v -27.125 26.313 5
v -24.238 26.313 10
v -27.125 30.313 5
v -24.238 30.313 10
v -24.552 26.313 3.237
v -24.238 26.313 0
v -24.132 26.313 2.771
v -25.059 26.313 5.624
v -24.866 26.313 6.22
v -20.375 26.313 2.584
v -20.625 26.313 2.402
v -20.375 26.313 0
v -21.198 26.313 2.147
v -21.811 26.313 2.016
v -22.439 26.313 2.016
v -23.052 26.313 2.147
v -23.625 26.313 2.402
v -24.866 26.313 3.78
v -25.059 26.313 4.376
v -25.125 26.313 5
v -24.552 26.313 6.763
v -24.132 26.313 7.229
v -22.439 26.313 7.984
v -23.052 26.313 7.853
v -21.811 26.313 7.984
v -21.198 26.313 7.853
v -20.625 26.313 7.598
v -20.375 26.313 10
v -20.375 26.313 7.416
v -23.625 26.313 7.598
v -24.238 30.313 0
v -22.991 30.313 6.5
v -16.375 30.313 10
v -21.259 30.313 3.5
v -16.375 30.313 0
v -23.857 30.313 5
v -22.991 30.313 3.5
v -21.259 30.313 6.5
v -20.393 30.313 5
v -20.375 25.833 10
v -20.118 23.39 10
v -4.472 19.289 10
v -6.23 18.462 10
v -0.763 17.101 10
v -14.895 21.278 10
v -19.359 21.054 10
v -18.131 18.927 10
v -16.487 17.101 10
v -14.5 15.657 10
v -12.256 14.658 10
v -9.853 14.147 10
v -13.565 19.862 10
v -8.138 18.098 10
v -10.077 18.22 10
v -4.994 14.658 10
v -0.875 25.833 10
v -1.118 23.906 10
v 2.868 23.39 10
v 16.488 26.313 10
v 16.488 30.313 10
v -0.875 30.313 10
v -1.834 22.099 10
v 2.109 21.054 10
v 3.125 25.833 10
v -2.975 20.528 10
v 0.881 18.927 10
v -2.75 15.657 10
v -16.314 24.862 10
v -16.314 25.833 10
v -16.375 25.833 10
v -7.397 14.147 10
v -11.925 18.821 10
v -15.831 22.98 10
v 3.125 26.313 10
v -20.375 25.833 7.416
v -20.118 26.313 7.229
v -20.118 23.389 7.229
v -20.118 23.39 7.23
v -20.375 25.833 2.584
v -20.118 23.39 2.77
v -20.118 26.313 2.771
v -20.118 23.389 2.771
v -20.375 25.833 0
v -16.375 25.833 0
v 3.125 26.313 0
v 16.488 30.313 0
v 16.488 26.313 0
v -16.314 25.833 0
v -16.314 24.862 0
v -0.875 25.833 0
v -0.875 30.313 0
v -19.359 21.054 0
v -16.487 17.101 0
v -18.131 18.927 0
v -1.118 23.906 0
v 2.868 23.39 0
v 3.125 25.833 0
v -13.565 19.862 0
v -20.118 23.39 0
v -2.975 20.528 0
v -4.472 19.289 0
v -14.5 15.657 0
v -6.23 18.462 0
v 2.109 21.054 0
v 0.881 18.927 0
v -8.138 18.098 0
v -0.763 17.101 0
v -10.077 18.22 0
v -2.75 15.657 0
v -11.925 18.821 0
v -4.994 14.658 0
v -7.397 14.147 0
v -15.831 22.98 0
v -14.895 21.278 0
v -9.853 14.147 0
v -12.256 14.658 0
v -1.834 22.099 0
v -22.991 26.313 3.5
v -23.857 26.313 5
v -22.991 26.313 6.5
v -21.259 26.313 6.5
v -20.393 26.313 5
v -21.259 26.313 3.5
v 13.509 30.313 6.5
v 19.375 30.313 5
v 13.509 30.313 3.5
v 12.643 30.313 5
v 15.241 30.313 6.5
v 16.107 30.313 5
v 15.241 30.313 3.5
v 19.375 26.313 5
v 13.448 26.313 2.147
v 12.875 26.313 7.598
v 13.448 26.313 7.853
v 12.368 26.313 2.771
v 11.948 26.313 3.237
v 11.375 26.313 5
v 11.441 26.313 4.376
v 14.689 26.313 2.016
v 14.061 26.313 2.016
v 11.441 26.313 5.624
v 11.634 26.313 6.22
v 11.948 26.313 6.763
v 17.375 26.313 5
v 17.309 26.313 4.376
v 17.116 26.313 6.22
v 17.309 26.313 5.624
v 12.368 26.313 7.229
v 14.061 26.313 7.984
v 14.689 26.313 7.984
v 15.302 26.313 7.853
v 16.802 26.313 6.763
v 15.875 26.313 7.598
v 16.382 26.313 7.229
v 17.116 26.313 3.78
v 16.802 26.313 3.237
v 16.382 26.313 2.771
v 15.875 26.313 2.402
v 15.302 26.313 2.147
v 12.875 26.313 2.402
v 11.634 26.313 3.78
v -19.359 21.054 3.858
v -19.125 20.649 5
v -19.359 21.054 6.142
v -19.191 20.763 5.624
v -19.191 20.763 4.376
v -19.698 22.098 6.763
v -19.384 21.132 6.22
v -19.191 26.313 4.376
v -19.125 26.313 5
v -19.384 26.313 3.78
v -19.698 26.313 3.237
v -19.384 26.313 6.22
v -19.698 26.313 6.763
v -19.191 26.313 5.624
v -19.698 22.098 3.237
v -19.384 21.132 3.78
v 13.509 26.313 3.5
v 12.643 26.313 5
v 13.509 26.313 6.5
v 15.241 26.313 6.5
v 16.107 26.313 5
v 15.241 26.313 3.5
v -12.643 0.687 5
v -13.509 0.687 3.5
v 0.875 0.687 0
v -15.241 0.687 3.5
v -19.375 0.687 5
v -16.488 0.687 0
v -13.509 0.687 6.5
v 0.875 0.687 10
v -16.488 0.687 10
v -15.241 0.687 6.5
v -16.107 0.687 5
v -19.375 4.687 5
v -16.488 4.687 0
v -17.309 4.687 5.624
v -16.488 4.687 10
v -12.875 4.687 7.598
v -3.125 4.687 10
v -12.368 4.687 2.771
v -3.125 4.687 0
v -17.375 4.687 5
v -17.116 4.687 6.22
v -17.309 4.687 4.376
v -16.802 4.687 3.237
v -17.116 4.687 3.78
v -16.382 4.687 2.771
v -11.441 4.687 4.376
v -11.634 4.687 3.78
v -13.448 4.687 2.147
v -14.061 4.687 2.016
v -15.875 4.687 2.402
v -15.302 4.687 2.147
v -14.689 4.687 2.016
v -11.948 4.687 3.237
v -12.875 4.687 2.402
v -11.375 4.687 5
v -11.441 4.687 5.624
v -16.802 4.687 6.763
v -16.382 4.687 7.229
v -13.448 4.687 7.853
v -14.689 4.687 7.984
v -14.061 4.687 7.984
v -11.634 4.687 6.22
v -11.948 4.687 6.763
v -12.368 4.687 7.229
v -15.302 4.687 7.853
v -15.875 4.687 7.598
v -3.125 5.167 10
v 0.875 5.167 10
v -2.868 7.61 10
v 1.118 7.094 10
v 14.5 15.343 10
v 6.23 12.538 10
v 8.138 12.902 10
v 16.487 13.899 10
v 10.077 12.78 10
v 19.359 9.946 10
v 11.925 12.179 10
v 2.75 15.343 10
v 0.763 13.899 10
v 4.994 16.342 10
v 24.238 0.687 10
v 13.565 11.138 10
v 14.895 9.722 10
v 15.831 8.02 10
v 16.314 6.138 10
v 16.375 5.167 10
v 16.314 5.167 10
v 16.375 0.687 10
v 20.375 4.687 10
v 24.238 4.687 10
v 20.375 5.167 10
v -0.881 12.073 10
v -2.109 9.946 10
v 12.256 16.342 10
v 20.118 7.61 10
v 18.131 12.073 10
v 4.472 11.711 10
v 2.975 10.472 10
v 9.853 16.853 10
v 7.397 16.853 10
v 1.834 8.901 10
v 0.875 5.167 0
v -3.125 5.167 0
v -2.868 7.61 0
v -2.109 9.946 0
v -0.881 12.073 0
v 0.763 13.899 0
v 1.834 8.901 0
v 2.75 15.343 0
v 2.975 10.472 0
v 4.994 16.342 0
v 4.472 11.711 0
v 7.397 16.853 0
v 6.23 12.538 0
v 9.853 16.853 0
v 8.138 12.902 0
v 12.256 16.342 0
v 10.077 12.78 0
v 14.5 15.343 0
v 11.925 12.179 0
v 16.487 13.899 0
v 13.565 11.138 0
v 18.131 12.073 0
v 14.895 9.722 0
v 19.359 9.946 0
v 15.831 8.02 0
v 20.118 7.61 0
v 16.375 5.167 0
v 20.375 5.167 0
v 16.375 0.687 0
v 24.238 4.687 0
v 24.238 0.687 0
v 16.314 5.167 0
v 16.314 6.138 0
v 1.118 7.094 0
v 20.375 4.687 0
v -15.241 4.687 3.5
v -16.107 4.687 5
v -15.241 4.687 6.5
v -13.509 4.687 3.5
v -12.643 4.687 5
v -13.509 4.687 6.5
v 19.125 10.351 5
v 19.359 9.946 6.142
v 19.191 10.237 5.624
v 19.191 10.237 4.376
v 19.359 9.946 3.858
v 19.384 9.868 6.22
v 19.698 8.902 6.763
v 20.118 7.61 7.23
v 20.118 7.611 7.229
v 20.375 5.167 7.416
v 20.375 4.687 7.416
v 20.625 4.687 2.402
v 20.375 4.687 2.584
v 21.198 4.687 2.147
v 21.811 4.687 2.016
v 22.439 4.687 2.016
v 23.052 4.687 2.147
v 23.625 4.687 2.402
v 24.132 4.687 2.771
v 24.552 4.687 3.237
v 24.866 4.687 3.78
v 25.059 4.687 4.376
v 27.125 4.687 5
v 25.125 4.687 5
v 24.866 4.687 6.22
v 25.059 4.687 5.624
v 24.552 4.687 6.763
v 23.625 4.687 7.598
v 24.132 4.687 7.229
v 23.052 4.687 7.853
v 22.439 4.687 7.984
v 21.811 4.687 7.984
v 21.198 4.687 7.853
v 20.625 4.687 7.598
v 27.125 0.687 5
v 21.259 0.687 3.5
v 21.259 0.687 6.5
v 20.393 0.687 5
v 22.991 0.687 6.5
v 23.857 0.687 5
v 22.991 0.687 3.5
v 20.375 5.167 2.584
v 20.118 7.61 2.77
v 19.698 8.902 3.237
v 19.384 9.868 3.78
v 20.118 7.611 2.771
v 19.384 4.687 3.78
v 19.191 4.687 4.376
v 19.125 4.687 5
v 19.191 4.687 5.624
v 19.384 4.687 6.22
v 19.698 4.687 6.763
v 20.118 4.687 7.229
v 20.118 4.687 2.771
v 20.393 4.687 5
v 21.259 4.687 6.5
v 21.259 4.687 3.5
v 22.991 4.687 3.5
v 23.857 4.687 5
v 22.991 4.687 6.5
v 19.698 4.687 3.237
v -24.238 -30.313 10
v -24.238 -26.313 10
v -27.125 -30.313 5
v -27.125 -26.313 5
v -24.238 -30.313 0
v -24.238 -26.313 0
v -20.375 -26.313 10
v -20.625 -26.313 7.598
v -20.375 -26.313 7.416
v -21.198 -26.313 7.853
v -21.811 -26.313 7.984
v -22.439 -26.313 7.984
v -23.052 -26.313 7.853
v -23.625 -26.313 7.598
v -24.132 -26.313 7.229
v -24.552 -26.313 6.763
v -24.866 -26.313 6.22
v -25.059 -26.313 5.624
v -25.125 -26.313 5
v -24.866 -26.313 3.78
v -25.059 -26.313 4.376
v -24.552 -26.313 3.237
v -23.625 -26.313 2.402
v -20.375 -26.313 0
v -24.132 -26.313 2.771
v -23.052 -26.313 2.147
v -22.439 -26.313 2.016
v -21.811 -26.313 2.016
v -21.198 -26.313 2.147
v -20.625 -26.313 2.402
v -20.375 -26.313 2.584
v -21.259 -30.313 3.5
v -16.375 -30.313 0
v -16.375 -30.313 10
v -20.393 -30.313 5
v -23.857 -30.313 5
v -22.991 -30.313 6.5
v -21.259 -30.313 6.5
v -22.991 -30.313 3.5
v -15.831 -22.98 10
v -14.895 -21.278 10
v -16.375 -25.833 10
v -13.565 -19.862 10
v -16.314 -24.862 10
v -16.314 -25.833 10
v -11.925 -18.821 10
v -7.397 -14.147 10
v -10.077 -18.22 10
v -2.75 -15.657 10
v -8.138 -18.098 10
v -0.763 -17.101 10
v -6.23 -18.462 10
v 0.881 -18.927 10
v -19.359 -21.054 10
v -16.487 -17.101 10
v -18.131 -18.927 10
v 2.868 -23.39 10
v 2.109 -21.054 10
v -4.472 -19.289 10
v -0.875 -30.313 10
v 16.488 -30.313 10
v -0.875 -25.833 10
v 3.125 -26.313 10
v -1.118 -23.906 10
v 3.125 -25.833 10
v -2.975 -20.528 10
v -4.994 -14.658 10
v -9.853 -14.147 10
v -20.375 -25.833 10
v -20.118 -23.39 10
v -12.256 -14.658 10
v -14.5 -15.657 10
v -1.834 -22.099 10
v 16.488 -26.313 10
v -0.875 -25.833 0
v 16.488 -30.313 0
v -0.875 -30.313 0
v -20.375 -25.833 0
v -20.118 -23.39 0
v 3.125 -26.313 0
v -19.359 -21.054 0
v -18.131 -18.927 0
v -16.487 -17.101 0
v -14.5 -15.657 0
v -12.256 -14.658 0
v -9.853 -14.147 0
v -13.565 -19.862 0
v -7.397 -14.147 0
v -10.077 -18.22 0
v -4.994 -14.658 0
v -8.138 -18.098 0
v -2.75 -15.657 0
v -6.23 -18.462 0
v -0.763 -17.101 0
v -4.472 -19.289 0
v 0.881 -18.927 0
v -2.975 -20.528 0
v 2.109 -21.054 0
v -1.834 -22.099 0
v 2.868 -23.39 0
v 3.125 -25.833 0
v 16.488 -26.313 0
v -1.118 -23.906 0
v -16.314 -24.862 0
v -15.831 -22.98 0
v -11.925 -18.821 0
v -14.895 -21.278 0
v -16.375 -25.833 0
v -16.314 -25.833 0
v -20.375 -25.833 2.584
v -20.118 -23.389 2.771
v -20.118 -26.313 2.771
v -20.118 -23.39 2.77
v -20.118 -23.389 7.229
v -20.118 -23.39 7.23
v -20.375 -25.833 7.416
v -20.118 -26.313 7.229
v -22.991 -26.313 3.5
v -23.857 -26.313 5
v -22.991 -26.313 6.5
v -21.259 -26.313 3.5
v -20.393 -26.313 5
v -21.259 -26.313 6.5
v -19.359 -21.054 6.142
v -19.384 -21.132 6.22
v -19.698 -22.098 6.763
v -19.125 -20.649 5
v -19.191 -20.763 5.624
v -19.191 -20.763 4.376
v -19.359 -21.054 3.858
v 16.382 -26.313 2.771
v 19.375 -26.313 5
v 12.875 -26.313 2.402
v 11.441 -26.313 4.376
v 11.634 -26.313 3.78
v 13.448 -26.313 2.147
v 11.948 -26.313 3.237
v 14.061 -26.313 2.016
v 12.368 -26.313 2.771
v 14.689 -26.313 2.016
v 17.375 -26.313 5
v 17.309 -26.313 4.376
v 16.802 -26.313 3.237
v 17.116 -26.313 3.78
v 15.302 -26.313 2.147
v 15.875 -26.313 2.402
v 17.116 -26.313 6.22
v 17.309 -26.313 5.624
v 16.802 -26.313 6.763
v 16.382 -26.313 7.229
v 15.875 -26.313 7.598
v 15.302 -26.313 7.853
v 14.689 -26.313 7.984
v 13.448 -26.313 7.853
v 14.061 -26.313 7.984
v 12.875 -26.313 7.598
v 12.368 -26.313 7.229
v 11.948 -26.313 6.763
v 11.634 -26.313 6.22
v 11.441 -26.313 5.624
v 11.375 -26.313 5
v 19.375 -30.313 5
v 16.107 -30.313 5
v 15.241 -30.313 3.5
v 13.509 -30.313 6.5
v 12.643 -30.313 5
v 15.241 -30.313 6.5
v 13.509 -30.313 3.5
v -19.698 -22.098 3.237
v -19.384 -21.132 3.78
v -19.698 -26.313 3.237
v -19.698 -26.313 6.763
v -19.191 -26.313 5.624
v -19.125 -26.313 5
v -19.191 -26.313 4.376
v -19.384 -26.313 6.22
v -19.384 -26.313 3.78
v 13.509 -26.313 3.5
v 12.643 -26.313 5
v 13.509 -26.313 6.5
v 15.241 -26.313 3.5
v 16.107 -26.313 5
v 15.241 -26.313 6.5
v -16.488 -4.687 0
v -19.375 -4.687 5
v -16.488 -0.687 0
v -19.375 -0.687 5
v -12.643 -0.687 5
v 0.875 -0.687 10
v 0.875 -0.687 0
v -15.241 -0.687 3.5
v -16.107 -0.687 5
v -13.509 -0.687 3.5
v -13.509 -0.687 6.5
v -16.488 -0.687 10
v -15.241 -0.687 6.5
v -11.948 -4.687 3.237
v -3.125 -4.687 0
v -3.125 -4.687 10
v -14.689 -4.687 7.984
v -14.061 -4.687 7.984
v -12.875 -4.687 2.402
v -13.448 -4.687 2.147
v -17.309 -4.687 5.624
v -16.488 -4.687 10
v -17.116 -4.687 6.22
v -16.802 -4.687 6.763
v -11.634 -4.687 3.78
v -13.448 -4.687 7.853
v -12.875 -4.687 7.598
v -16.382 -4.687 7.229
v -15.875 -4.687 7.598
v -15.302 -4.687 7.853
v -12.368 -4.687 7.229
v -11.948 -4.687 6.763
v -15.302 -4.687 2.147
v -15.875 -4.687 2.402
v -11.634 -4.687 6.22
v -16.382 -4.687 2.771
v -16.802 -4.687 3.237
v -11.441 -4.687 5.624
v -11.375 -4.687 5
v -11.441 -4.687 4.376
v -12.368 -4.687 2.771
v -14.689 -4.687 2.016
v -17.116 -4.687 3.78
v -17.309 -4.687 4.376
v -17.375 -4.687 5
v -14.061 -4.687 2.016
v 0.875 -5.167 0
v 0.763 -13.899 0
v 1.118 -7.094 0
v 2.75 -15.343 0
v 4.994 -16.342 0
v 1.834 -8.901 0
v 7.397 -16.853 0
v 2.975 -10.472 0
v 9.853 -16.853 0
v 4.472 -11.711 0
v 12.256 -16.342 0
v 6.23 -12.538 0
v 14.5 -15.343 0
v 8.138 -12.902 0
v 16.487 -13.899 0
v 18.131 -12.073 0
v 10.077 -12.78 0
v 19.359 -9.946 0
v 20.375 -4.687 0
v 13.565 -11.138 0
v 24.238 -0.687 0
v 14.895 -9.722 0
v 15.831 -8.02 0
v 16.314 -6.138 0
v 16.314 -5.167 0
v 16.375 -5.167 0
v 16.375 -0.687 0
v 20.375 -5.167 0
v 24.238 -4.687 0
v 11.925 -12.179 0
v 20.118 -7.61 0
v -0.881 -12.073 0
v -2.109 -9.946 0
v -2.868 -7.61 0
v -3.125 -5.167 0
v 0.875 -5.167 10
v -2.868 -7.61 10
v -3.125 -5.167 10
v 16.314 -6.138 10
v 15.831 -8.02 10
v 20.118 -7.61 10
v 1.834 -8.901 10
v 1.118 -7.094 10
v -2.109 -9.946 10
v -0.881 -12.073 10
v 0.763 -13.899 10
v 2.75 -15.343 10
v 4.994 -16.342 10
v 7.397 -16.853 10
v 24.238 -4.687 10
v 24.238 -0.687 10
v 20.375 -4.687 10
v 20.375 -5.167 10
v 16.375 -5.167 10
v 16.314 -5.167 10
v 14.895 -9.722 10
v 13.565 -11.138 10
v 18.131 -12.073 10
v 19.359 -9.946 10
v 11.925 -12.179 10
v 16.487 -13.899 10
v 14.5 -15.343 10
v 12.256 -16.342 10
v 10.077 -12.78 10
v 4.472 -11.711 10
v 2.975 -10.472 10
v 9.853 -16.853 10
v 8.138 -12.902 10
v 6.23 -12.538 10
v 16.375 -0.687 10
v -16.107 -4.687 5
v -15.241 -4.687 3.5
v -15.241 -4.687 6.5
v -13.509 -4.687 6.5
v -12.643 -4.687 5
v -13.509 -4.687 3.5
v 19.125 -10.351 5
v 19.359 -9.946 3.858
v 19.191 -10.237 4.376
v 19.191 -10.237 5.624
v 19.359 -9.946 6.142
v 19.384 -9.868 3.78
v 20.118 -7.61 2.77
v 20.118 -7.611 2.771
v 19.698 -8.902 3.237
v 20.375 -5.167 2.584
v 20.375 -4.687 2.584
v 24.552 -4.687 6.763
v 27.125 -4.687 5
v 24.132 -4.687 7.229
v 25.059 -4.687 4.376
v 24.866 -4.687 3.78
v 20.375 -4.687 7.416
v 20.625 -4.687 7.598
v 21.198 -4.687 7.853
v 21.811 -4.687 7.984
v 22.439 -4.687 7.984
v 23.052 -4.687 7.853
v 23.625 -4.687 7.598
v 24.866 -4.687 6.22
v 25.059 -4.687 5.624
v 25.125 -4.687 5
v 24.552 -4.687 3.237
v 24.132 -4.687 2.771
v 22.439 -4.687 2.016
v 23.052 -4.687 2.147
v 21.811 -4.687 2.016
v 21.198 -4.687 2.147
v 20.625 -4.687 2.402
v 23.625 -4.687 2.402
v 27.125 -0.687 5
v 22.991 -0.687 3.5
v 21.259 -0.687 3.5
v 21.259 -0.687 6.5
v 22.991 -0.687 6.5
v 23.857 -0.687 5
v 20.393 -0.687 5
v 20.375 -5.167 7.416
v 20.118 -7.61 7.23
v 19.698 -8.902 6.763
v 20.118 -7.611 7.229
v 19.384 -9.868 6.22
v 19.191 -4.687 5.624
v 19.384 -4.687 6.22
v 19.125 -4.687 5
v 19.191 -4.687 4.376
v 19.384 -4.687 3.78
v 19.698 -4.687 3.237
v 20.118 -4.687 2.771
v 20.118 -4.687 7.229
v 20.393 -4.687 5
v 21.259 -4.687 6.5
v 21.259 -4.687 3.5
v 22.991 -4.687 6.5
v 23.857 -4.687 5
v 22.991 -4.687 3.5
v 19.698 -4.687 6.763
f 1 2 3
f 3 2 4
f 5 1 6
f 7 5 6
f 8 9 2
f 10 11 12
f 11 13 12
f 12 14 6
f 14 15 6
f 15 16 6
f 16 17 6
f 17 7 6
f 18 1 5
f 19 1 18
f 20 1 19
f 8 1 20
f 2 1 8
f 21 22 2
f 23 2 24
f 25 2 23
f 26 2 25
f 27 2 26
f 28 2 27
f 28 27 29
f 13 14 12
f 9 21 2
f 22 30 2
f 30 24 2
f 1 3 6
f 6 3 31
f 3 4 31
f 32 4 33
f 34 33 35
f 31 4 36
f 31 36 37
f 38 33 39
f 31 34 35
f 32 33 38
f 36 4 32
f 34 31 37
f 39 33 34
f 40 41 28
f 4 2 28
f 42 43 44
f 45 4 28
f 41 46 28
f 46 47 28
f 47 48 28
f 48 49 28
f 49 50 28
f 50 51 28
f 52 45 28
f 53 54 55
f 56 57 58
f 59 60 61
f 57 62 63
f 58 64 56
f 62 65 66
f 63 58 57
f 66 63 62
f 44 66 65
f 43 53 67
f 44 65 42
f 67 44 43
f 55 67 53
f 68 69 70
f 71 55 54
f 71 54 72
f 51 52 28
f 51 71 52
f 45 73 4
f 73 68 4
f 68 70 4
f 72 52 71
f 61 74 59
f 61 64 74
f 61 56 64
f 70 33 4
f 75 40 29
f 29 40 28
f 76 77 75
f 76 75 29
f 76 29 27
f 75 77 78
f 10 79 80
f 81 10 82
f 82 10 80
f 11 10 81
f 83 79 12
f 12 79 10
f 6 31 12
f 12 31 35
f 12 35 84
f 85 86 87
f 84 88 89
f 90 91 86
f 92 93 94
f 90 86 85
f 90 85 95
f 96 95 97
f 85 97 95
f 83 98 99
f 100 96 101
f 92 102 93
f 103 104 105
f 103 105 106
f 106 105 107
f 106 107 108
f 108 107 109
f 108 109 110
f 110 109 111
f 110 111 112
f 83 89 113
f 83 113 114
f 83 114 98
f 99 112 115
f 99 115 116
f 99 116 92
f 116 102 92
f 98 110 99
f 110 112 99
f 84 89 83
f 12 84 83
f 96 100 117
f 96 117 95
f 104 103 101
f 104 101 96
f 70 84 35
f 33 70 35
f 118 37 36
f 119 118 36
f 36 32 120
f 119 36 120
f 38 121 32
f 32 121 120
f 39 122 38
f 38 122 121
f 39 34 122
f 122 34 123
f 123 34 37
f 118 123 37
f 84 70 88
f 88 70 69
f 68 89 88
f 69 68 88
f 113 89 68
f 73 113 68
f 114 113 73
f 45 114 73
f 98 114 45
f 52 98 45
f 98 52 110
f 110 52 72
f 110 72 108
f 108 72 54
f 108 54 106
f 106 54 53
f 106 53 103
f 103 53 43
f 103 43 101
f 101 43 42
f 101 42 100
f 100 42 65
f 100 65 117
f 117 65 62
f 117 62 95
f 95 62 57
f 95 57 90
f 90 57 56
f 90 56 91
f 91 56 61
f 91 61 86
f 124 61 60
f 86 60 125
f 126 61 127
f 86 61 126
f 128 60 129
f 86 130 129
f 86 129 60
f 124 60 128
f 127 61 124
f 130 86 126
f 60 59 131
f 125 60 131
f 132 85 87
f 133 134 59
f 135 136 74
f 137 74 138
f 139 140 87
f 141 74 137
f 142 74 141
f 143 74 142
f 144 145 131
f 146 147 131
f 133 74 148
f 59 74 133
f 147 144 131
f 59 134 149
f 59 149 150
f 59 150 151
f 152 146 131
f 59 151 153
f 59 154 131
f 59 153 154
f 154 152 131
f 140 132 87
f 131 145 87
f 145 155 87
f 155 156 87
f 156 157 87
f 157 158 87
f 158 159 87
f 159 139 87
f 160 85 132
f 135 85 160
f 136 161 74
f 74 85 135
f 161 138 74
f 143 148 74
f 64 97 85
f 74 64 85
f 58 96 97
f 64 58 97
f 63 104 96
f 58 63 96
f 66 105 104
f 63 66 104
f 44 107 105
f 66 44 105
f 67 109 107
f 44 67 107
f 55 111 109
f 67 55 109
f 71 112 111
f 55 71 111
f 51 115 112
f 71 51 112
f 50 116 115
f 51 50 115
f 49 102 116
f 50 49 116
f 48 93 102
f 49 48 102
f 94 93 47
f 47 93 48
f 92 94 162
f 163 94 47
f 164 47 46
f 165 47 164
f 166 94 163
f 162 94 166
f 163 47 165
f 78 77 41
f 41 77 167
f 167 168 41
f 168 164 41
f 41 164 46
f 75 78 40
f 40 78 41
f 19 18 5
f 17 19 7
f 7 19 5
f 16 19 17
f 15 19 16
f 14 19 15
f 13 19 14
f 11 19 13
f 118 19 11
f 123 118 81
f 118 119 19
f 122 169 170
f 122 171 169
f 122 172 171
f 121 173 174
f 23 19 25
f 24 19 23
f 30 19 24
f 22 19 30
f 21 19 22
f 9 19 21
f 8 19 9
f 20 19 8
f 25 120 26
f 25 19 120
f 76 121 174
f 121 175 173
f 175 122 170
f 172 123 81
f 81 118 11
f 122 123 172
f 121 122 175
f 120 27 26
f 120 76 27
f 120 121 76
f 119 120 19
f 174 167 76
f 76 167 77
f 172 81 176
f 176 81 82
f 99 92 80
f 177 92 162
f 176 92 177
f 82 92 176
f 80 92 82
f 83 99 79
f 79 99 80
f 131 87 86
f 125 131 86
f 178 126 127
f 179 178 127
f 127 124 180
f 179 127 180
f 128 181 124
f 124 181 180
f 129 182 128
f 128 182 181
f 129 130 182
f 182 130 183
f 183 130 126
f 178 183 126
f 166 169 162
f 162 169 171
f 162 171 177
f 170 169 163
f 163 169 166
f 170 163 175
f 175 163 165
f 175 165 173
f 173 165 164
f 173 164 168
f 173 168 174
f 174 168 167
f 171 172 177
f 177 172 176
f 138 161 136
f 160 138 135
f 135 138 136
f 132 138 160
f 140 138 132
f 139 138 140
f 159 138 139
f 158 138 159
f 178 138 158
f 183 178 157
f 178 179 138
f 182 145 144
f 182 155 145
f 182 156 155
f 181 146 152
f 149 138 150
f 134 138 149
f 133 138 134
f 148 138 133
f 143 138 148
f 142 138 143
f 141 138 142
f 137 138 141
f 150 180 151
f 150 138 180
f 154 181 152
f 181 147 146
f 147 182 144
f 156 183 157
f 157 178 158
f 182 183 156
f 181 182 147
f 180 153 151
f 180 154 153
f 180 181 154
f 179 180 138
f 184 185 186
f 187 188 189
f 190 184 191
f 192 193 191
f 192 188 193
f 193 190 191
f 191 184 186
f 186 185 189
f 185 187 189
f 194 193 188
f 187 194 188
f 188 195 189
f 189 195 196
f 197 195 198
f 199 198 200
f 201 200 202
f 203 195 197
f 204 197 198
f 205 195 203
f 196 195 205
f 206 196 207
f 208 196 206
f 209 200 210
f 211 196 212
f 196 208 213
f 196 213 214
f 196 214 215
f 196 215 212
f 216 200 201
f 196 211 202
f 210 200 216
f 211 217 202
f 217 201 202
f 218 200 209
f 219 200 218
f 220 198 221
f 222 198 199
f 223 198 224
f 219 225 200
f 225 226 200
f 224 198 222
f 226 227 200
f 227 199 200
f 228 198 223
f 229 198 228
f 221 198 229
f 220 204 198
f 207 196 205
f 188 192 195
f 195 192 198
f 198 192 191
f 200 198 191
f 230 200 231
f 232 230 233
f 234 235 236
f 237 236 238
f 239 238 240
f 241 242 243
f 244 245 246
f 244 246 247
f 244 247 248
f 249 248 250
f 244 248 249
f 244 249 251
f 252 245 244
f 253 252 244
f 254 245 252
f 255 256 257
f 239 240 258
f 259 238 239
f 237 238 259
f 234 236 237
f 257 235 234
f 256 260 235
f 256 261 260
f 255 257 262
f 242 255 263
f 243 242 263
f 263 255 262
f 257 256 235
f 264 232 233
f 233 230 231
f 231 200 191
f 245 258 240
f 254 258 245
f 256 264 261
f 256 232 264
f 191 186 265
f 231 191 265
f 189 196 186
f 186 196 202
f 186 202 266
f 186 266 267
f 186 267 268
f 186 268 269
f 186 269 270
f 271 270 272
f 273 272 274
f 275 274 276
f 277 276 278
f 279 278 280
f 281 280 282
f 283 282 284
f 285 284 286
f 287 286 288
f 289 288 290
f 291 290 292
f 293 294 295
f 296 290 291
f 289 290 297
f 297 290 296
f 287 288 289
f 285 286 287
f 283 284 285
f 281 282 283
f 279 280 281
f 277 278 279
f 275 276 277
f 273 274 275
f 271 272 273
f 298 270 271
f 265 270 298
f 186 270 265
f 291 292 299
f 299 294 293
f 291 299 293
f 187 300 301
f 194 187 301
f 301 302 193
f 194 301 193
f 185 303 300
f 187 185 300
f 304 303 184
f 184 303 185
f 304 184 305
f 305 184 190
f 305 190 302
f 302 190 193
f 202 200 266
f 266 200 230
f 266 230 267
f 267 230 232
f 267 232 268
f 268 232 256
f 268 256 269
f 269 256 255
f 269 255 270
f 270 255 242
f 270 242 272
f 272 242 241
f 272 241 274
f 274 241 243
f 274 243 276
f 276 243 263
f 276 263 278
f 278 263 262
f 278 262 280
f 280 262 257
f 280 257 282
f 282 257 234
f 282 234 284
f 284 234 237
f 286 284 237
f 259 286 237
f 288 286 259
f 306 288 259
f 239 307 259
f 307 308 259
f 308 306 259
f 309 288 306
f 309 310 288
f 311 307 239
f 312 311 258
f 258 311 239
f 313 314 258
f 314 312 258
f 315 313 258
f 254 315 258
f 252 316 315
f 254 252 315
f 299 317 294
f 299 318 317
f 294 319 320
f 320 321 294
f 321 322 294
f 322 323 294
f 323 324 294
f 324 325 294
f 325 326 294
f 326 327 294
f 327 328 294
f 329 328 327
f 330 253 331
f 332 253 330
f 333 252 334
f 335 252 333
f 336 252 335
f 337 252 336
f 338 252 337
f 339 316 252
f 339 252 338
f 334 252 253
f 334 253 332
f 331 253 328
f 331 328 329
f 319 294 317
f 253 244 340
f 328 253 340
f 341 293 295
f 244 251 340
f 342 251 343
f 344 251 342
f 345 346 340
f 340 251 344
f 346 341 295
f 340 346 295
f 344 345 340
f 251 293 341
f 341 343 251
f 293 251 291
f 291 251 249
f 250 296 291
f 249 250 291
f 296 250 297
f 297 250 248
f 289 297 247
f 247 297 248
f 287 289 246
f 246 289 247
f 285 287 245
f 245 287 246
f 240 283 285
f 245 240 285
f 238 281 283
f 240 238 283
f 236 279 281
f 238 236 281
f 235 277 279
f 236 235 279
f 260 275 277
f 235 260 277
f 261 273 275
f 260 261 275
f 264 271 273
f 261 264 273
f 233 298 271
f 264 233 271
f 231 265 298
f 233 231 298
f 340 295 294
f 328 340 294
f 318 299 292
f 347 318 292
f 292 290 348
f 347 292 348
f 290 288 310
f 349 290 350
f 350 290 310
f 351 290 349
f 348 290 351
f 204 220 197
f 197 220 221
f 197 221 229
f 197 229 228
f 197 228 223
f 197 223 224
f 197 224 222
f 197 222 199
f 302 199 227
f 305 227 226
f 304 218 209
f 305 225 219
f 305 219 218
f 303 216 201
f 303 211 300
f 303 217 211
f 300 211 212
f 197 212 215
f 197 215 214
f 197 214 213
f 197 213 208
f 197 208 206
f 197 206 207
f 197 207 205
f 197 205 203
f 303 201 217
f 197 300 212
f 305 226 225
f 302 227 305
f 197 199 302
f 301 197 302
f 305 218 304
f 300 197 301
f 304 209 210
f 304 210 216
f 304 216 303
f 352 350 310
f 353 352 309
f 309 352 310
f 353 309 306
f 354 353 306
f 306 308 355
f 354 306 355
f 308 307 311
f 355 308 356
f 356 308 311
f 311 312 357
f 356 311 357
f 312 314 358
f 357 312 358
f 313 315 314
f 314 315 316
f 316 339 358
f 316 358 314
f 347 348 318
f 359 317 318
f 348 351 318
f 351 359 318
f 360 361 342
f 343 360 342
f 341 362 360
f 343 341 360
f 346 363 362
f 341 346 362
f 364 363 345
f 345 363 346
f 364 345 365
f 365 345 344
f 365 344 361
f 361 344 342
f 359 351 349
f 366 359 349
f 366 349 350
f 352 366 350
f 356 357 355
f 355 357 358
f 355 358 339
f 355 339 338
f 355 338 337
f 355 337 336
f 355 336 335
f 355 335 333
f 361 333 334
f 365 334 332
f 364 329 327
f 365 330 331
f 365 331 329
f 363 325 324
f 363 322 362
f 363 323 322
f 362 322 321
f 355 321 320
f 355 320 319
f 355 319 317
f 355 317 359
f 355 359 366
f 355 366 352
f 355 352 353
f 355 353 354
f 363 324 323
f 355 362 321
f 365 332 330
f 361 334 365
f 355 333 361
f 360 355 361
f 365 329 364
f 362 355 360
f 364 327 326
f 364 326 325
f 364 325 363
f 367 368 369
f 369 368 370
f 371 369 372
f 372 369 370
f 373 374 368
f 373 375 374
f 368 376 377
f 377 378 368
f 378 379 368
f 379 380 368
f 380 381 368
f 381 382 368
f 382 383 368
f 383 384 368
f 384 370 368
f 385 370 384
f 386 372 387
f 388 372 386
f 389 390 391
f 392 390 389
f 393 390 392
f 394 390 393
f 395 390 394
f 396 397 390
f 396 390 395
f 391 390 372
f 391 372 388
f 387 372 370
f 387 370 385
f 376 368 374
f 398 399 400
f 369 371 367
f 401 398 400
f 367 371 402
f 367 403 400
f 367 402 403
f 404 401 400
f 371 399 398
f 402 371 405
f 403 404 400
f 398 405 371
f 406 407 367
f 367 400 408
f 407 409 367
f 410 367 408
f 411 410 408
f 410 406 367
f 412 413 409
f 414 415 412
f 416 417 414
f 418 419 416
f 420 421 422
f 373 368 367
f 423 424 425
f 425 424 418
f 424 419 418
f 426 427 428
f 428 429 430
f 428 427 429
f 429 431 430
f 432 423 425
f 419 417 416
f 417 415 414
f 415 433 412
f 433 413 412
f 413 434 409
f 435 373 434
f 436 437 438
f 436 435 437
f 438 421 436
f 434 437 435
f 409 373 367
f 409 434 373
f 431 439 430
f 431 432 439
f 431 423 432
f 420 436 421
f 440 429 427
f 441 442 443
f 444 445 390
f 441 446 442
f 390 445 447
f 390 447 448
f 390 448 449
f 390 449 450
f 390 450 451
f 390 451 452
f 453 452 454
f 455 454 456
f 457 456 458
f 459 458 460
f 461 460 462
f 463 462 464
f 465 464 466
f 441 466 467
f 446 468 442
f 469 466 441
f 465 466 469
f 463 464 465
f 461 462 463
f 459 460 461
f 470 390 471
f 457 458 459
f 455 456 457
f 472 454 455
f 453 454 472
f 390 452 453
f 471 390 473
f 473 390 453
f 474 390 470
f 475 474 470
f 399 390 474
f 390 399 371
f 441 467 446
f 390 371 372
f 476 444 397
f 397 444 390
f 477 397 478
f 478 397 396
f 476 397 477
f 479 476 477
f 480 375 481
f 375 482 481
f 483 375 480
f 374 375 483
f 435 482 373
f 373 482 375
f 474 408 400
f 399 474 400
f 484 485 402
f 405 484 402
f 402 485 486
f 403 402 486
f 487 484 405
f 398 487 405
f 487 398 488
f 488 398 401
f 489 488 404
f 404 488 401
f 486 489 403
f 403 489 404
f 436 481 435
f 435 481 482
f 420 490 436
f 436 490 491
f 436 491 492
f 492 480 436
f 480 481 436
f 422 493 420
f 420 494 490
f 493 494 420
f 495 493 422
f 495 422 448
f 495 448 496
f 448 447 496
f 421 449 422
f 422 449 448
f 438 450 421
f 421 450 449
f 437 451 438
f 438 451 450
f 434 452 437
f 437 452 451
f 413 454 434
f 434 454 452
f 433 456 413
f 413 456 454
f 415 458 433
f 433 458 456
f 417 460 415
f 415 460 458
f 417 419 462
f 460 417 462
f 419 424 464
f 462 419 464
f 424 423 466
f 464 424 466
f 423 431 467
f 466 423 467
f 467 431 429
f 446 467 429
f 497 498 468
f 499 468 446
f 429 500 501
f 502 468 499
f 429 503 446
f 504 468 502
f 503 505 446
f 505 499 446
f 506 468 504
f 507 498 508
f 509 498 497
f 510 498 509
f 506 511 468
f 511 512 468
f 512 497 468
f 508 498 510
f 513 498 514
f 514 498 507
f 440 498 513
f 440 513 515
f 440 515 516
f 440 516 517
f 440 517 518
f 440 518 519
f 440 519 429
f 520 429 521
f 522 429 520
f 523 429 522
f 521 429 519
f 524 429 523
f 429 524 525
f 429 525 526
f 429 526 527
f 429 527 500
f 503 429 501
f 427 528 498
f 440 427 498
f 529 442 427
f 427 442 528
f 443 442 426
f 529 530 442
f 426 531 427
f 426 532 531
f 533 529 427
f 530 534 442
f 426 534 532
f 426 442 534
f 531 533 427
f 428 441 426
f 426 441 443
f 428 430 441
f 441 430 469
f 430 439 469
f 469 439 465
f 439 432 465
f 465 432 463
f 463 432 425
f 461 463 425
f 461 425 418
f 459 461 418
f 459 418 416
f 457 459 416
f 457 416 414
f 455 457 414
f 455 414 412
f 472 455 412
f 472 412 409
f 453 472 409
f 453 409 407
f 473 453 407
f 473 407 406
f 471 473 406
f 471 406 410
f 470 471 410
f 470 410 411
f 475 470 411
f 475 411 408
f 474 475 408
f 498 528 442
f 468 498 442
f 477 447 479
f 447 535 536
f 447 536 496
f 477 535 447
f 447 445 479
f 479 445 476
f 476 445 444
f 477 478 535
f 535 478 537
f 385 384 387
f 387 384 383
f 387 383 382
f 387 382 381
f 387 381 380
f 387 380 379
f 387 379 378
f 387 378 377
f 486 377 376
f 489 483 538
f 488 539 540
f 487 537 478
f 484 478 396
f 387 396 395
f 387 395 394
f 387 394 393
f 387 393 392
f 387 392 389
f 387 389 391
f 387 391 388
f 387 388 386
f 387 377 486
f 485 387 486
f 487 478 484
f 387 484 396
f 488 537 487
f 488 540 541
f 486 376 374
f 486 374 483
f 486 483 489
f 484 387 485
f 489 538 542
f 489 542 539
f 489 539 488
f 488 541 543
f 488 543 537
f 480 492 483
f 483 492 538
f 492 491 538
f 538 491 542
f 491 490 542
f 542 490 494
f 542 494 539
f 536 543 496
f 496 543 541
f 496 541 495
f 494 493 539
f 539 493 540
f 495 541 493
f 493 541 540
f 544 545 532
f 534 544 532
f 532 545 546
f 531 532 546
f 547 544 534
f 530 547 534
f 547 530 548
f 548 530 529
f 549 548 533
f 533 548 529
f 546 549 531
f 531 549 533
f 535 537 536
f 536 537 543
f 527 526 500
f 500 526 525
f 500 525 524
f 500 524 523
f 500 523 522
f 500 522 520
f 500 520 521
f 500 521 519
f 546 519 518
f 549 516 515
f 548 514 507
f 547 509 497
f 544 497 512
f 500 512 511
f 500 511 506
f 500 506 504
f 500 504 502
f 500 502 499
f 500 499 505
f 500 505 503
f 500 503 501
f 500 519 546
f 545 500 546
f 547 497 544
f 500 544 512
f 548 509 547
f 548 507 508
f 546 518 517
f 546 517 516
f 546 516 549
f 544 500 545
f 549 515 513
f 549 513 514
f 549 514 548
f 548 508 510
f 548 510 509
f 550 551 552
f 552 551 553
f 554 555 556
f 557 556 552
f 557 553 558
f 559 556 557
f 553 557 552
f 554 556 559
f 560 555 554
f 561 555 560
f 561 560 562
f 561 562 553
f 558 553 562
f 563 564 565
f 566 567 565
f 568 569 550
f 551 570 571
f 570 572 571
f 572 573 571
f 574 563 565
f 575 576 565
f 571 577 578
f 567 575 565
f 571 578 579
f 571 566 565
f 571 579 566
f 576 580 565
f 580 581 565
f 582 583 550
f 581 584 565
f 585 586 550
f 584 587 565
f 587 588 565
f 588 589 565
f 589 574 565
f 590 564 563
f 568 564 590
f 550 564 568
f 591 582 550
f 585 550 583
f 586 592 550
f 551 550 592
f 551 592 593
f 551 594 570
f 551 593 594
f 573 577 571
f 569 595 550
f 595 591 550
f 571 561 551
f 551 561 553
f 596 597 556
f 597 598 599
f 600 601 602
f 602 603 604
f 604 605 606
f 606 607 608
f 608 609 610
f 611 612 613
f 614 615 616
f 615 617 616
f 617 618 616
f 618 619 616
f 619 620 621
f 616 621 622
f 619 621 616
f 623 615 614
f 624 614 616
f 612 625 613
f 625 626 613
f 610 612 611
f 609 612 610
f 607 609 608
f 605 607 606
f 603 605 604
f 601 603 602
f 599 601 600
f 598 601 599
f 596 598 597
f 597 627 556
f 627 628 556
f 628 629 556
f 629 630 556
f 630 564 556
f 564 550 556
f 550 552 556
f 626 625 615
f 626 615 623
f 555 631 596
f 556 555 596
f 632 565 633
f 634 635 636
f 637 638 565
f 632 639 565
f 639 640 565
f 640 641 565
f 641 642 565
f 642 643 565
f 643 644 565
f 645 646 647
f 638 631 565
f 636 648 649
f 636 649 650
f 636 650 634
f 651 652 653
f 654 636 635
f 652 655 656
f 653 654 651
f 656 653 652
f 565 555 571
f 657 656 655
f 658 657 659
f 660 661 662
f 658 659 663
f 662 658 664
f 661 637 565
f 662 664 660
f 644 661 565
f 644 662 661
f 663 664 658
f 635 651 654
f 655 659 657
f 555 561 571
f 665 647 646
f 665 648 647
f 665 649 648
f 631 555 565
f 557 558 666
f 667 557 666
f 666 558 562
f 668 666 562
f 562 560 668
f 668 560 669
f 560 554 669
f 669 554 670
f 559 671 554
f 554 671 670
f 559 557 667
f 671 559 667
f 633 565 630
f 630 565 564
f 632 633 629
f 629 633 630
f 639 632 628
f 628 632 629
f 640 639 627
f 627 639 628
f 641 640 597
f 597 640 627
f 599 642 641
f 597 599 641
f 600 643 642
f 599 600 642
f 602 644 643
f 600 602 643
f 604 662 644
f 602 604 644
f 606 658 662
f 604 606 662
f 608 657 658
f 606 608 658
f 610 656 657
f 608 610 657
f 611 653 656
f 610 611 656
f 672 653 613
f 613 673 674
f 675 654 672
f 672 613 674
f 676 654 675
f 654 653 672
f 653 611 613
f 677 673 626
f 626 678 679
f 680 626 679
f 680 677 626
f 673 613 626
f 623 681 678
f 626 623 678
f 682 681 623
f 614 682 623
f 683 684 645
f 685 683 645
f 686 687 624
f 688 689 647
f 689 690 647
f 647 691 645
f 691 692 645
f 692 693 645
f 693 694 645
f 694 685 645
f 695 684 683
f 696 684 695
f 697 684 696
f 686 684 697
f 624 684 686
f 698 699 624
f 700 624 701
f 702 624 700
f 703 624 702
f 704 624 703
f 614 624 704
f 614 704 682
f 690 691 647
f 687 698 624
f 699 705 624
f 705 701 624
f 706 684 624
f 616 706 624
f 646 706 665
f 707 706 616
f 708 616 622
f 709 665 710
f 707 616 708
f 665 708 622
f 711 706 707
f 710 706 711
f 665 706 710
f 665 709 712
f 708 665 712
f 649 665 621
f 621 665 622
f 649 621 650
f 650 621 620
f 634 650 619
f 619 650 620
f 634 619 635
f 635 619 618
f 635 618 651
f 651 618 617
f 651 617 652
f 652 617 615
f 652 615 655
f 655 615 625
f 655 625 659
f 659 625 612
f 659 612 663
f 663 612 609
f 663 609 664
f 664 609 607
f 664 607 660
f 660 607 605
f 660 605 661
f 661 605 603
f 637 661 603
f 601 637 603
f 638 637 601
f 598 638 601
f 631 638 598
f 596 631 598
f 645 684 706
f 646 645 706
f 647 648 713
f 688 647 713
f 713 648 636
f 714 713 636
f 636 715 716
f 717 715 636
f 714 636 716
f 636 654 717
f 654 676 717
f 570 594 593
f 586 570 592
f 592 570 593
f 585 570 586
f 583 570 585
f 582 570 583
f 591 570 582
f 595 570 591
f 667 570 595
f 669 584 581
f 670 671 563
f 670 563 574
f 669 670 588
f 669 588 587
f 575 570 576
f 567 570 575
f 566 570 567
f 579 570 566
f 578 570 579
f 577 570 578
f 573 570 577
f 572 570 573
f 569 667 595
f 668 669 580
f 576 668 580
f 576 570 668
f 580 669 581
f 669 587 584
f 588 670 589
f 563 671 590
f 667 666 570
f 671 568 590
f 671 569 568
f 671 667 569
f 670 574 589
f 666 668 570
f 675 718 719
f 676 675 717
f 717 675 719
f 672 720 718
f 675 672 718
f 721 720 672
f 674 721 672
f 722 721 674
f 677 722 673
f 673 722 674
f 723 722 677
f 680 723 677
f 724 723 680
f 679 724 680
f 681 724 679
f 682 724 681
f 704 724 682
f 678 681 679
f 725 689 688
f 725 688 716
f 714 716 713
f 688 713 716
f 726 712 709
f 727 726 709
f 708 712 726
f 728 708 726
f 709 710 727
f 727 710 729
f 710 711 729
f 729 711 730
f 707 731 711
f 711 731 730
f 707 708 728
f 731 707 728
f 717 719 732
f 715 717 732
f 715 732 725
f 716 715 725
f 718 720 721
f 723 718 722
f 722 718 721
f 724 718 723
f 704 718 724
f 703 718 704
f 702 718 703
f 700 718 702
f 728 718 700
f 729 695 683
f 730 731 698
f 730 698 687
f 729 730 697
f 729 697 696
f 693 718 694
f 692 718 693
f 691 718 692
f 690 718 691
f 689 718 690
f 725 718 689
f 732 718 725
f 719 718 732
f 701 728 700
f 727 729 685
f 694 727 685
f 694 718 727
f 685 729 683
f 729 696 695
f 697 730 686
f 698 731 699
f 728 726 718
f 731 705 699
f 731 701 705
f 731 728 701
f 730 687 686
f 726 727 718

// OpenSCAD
include <3dm1.scad>;

!for(b = [0:1]) mirror([0, b, 0]) for(a = [-1,1]) translate([a * bearing_size / 4, bearing_size - (bearing_size * 2/3) * a, 0]) rotate(90 + 90 * a) y_bearing_retainer();
